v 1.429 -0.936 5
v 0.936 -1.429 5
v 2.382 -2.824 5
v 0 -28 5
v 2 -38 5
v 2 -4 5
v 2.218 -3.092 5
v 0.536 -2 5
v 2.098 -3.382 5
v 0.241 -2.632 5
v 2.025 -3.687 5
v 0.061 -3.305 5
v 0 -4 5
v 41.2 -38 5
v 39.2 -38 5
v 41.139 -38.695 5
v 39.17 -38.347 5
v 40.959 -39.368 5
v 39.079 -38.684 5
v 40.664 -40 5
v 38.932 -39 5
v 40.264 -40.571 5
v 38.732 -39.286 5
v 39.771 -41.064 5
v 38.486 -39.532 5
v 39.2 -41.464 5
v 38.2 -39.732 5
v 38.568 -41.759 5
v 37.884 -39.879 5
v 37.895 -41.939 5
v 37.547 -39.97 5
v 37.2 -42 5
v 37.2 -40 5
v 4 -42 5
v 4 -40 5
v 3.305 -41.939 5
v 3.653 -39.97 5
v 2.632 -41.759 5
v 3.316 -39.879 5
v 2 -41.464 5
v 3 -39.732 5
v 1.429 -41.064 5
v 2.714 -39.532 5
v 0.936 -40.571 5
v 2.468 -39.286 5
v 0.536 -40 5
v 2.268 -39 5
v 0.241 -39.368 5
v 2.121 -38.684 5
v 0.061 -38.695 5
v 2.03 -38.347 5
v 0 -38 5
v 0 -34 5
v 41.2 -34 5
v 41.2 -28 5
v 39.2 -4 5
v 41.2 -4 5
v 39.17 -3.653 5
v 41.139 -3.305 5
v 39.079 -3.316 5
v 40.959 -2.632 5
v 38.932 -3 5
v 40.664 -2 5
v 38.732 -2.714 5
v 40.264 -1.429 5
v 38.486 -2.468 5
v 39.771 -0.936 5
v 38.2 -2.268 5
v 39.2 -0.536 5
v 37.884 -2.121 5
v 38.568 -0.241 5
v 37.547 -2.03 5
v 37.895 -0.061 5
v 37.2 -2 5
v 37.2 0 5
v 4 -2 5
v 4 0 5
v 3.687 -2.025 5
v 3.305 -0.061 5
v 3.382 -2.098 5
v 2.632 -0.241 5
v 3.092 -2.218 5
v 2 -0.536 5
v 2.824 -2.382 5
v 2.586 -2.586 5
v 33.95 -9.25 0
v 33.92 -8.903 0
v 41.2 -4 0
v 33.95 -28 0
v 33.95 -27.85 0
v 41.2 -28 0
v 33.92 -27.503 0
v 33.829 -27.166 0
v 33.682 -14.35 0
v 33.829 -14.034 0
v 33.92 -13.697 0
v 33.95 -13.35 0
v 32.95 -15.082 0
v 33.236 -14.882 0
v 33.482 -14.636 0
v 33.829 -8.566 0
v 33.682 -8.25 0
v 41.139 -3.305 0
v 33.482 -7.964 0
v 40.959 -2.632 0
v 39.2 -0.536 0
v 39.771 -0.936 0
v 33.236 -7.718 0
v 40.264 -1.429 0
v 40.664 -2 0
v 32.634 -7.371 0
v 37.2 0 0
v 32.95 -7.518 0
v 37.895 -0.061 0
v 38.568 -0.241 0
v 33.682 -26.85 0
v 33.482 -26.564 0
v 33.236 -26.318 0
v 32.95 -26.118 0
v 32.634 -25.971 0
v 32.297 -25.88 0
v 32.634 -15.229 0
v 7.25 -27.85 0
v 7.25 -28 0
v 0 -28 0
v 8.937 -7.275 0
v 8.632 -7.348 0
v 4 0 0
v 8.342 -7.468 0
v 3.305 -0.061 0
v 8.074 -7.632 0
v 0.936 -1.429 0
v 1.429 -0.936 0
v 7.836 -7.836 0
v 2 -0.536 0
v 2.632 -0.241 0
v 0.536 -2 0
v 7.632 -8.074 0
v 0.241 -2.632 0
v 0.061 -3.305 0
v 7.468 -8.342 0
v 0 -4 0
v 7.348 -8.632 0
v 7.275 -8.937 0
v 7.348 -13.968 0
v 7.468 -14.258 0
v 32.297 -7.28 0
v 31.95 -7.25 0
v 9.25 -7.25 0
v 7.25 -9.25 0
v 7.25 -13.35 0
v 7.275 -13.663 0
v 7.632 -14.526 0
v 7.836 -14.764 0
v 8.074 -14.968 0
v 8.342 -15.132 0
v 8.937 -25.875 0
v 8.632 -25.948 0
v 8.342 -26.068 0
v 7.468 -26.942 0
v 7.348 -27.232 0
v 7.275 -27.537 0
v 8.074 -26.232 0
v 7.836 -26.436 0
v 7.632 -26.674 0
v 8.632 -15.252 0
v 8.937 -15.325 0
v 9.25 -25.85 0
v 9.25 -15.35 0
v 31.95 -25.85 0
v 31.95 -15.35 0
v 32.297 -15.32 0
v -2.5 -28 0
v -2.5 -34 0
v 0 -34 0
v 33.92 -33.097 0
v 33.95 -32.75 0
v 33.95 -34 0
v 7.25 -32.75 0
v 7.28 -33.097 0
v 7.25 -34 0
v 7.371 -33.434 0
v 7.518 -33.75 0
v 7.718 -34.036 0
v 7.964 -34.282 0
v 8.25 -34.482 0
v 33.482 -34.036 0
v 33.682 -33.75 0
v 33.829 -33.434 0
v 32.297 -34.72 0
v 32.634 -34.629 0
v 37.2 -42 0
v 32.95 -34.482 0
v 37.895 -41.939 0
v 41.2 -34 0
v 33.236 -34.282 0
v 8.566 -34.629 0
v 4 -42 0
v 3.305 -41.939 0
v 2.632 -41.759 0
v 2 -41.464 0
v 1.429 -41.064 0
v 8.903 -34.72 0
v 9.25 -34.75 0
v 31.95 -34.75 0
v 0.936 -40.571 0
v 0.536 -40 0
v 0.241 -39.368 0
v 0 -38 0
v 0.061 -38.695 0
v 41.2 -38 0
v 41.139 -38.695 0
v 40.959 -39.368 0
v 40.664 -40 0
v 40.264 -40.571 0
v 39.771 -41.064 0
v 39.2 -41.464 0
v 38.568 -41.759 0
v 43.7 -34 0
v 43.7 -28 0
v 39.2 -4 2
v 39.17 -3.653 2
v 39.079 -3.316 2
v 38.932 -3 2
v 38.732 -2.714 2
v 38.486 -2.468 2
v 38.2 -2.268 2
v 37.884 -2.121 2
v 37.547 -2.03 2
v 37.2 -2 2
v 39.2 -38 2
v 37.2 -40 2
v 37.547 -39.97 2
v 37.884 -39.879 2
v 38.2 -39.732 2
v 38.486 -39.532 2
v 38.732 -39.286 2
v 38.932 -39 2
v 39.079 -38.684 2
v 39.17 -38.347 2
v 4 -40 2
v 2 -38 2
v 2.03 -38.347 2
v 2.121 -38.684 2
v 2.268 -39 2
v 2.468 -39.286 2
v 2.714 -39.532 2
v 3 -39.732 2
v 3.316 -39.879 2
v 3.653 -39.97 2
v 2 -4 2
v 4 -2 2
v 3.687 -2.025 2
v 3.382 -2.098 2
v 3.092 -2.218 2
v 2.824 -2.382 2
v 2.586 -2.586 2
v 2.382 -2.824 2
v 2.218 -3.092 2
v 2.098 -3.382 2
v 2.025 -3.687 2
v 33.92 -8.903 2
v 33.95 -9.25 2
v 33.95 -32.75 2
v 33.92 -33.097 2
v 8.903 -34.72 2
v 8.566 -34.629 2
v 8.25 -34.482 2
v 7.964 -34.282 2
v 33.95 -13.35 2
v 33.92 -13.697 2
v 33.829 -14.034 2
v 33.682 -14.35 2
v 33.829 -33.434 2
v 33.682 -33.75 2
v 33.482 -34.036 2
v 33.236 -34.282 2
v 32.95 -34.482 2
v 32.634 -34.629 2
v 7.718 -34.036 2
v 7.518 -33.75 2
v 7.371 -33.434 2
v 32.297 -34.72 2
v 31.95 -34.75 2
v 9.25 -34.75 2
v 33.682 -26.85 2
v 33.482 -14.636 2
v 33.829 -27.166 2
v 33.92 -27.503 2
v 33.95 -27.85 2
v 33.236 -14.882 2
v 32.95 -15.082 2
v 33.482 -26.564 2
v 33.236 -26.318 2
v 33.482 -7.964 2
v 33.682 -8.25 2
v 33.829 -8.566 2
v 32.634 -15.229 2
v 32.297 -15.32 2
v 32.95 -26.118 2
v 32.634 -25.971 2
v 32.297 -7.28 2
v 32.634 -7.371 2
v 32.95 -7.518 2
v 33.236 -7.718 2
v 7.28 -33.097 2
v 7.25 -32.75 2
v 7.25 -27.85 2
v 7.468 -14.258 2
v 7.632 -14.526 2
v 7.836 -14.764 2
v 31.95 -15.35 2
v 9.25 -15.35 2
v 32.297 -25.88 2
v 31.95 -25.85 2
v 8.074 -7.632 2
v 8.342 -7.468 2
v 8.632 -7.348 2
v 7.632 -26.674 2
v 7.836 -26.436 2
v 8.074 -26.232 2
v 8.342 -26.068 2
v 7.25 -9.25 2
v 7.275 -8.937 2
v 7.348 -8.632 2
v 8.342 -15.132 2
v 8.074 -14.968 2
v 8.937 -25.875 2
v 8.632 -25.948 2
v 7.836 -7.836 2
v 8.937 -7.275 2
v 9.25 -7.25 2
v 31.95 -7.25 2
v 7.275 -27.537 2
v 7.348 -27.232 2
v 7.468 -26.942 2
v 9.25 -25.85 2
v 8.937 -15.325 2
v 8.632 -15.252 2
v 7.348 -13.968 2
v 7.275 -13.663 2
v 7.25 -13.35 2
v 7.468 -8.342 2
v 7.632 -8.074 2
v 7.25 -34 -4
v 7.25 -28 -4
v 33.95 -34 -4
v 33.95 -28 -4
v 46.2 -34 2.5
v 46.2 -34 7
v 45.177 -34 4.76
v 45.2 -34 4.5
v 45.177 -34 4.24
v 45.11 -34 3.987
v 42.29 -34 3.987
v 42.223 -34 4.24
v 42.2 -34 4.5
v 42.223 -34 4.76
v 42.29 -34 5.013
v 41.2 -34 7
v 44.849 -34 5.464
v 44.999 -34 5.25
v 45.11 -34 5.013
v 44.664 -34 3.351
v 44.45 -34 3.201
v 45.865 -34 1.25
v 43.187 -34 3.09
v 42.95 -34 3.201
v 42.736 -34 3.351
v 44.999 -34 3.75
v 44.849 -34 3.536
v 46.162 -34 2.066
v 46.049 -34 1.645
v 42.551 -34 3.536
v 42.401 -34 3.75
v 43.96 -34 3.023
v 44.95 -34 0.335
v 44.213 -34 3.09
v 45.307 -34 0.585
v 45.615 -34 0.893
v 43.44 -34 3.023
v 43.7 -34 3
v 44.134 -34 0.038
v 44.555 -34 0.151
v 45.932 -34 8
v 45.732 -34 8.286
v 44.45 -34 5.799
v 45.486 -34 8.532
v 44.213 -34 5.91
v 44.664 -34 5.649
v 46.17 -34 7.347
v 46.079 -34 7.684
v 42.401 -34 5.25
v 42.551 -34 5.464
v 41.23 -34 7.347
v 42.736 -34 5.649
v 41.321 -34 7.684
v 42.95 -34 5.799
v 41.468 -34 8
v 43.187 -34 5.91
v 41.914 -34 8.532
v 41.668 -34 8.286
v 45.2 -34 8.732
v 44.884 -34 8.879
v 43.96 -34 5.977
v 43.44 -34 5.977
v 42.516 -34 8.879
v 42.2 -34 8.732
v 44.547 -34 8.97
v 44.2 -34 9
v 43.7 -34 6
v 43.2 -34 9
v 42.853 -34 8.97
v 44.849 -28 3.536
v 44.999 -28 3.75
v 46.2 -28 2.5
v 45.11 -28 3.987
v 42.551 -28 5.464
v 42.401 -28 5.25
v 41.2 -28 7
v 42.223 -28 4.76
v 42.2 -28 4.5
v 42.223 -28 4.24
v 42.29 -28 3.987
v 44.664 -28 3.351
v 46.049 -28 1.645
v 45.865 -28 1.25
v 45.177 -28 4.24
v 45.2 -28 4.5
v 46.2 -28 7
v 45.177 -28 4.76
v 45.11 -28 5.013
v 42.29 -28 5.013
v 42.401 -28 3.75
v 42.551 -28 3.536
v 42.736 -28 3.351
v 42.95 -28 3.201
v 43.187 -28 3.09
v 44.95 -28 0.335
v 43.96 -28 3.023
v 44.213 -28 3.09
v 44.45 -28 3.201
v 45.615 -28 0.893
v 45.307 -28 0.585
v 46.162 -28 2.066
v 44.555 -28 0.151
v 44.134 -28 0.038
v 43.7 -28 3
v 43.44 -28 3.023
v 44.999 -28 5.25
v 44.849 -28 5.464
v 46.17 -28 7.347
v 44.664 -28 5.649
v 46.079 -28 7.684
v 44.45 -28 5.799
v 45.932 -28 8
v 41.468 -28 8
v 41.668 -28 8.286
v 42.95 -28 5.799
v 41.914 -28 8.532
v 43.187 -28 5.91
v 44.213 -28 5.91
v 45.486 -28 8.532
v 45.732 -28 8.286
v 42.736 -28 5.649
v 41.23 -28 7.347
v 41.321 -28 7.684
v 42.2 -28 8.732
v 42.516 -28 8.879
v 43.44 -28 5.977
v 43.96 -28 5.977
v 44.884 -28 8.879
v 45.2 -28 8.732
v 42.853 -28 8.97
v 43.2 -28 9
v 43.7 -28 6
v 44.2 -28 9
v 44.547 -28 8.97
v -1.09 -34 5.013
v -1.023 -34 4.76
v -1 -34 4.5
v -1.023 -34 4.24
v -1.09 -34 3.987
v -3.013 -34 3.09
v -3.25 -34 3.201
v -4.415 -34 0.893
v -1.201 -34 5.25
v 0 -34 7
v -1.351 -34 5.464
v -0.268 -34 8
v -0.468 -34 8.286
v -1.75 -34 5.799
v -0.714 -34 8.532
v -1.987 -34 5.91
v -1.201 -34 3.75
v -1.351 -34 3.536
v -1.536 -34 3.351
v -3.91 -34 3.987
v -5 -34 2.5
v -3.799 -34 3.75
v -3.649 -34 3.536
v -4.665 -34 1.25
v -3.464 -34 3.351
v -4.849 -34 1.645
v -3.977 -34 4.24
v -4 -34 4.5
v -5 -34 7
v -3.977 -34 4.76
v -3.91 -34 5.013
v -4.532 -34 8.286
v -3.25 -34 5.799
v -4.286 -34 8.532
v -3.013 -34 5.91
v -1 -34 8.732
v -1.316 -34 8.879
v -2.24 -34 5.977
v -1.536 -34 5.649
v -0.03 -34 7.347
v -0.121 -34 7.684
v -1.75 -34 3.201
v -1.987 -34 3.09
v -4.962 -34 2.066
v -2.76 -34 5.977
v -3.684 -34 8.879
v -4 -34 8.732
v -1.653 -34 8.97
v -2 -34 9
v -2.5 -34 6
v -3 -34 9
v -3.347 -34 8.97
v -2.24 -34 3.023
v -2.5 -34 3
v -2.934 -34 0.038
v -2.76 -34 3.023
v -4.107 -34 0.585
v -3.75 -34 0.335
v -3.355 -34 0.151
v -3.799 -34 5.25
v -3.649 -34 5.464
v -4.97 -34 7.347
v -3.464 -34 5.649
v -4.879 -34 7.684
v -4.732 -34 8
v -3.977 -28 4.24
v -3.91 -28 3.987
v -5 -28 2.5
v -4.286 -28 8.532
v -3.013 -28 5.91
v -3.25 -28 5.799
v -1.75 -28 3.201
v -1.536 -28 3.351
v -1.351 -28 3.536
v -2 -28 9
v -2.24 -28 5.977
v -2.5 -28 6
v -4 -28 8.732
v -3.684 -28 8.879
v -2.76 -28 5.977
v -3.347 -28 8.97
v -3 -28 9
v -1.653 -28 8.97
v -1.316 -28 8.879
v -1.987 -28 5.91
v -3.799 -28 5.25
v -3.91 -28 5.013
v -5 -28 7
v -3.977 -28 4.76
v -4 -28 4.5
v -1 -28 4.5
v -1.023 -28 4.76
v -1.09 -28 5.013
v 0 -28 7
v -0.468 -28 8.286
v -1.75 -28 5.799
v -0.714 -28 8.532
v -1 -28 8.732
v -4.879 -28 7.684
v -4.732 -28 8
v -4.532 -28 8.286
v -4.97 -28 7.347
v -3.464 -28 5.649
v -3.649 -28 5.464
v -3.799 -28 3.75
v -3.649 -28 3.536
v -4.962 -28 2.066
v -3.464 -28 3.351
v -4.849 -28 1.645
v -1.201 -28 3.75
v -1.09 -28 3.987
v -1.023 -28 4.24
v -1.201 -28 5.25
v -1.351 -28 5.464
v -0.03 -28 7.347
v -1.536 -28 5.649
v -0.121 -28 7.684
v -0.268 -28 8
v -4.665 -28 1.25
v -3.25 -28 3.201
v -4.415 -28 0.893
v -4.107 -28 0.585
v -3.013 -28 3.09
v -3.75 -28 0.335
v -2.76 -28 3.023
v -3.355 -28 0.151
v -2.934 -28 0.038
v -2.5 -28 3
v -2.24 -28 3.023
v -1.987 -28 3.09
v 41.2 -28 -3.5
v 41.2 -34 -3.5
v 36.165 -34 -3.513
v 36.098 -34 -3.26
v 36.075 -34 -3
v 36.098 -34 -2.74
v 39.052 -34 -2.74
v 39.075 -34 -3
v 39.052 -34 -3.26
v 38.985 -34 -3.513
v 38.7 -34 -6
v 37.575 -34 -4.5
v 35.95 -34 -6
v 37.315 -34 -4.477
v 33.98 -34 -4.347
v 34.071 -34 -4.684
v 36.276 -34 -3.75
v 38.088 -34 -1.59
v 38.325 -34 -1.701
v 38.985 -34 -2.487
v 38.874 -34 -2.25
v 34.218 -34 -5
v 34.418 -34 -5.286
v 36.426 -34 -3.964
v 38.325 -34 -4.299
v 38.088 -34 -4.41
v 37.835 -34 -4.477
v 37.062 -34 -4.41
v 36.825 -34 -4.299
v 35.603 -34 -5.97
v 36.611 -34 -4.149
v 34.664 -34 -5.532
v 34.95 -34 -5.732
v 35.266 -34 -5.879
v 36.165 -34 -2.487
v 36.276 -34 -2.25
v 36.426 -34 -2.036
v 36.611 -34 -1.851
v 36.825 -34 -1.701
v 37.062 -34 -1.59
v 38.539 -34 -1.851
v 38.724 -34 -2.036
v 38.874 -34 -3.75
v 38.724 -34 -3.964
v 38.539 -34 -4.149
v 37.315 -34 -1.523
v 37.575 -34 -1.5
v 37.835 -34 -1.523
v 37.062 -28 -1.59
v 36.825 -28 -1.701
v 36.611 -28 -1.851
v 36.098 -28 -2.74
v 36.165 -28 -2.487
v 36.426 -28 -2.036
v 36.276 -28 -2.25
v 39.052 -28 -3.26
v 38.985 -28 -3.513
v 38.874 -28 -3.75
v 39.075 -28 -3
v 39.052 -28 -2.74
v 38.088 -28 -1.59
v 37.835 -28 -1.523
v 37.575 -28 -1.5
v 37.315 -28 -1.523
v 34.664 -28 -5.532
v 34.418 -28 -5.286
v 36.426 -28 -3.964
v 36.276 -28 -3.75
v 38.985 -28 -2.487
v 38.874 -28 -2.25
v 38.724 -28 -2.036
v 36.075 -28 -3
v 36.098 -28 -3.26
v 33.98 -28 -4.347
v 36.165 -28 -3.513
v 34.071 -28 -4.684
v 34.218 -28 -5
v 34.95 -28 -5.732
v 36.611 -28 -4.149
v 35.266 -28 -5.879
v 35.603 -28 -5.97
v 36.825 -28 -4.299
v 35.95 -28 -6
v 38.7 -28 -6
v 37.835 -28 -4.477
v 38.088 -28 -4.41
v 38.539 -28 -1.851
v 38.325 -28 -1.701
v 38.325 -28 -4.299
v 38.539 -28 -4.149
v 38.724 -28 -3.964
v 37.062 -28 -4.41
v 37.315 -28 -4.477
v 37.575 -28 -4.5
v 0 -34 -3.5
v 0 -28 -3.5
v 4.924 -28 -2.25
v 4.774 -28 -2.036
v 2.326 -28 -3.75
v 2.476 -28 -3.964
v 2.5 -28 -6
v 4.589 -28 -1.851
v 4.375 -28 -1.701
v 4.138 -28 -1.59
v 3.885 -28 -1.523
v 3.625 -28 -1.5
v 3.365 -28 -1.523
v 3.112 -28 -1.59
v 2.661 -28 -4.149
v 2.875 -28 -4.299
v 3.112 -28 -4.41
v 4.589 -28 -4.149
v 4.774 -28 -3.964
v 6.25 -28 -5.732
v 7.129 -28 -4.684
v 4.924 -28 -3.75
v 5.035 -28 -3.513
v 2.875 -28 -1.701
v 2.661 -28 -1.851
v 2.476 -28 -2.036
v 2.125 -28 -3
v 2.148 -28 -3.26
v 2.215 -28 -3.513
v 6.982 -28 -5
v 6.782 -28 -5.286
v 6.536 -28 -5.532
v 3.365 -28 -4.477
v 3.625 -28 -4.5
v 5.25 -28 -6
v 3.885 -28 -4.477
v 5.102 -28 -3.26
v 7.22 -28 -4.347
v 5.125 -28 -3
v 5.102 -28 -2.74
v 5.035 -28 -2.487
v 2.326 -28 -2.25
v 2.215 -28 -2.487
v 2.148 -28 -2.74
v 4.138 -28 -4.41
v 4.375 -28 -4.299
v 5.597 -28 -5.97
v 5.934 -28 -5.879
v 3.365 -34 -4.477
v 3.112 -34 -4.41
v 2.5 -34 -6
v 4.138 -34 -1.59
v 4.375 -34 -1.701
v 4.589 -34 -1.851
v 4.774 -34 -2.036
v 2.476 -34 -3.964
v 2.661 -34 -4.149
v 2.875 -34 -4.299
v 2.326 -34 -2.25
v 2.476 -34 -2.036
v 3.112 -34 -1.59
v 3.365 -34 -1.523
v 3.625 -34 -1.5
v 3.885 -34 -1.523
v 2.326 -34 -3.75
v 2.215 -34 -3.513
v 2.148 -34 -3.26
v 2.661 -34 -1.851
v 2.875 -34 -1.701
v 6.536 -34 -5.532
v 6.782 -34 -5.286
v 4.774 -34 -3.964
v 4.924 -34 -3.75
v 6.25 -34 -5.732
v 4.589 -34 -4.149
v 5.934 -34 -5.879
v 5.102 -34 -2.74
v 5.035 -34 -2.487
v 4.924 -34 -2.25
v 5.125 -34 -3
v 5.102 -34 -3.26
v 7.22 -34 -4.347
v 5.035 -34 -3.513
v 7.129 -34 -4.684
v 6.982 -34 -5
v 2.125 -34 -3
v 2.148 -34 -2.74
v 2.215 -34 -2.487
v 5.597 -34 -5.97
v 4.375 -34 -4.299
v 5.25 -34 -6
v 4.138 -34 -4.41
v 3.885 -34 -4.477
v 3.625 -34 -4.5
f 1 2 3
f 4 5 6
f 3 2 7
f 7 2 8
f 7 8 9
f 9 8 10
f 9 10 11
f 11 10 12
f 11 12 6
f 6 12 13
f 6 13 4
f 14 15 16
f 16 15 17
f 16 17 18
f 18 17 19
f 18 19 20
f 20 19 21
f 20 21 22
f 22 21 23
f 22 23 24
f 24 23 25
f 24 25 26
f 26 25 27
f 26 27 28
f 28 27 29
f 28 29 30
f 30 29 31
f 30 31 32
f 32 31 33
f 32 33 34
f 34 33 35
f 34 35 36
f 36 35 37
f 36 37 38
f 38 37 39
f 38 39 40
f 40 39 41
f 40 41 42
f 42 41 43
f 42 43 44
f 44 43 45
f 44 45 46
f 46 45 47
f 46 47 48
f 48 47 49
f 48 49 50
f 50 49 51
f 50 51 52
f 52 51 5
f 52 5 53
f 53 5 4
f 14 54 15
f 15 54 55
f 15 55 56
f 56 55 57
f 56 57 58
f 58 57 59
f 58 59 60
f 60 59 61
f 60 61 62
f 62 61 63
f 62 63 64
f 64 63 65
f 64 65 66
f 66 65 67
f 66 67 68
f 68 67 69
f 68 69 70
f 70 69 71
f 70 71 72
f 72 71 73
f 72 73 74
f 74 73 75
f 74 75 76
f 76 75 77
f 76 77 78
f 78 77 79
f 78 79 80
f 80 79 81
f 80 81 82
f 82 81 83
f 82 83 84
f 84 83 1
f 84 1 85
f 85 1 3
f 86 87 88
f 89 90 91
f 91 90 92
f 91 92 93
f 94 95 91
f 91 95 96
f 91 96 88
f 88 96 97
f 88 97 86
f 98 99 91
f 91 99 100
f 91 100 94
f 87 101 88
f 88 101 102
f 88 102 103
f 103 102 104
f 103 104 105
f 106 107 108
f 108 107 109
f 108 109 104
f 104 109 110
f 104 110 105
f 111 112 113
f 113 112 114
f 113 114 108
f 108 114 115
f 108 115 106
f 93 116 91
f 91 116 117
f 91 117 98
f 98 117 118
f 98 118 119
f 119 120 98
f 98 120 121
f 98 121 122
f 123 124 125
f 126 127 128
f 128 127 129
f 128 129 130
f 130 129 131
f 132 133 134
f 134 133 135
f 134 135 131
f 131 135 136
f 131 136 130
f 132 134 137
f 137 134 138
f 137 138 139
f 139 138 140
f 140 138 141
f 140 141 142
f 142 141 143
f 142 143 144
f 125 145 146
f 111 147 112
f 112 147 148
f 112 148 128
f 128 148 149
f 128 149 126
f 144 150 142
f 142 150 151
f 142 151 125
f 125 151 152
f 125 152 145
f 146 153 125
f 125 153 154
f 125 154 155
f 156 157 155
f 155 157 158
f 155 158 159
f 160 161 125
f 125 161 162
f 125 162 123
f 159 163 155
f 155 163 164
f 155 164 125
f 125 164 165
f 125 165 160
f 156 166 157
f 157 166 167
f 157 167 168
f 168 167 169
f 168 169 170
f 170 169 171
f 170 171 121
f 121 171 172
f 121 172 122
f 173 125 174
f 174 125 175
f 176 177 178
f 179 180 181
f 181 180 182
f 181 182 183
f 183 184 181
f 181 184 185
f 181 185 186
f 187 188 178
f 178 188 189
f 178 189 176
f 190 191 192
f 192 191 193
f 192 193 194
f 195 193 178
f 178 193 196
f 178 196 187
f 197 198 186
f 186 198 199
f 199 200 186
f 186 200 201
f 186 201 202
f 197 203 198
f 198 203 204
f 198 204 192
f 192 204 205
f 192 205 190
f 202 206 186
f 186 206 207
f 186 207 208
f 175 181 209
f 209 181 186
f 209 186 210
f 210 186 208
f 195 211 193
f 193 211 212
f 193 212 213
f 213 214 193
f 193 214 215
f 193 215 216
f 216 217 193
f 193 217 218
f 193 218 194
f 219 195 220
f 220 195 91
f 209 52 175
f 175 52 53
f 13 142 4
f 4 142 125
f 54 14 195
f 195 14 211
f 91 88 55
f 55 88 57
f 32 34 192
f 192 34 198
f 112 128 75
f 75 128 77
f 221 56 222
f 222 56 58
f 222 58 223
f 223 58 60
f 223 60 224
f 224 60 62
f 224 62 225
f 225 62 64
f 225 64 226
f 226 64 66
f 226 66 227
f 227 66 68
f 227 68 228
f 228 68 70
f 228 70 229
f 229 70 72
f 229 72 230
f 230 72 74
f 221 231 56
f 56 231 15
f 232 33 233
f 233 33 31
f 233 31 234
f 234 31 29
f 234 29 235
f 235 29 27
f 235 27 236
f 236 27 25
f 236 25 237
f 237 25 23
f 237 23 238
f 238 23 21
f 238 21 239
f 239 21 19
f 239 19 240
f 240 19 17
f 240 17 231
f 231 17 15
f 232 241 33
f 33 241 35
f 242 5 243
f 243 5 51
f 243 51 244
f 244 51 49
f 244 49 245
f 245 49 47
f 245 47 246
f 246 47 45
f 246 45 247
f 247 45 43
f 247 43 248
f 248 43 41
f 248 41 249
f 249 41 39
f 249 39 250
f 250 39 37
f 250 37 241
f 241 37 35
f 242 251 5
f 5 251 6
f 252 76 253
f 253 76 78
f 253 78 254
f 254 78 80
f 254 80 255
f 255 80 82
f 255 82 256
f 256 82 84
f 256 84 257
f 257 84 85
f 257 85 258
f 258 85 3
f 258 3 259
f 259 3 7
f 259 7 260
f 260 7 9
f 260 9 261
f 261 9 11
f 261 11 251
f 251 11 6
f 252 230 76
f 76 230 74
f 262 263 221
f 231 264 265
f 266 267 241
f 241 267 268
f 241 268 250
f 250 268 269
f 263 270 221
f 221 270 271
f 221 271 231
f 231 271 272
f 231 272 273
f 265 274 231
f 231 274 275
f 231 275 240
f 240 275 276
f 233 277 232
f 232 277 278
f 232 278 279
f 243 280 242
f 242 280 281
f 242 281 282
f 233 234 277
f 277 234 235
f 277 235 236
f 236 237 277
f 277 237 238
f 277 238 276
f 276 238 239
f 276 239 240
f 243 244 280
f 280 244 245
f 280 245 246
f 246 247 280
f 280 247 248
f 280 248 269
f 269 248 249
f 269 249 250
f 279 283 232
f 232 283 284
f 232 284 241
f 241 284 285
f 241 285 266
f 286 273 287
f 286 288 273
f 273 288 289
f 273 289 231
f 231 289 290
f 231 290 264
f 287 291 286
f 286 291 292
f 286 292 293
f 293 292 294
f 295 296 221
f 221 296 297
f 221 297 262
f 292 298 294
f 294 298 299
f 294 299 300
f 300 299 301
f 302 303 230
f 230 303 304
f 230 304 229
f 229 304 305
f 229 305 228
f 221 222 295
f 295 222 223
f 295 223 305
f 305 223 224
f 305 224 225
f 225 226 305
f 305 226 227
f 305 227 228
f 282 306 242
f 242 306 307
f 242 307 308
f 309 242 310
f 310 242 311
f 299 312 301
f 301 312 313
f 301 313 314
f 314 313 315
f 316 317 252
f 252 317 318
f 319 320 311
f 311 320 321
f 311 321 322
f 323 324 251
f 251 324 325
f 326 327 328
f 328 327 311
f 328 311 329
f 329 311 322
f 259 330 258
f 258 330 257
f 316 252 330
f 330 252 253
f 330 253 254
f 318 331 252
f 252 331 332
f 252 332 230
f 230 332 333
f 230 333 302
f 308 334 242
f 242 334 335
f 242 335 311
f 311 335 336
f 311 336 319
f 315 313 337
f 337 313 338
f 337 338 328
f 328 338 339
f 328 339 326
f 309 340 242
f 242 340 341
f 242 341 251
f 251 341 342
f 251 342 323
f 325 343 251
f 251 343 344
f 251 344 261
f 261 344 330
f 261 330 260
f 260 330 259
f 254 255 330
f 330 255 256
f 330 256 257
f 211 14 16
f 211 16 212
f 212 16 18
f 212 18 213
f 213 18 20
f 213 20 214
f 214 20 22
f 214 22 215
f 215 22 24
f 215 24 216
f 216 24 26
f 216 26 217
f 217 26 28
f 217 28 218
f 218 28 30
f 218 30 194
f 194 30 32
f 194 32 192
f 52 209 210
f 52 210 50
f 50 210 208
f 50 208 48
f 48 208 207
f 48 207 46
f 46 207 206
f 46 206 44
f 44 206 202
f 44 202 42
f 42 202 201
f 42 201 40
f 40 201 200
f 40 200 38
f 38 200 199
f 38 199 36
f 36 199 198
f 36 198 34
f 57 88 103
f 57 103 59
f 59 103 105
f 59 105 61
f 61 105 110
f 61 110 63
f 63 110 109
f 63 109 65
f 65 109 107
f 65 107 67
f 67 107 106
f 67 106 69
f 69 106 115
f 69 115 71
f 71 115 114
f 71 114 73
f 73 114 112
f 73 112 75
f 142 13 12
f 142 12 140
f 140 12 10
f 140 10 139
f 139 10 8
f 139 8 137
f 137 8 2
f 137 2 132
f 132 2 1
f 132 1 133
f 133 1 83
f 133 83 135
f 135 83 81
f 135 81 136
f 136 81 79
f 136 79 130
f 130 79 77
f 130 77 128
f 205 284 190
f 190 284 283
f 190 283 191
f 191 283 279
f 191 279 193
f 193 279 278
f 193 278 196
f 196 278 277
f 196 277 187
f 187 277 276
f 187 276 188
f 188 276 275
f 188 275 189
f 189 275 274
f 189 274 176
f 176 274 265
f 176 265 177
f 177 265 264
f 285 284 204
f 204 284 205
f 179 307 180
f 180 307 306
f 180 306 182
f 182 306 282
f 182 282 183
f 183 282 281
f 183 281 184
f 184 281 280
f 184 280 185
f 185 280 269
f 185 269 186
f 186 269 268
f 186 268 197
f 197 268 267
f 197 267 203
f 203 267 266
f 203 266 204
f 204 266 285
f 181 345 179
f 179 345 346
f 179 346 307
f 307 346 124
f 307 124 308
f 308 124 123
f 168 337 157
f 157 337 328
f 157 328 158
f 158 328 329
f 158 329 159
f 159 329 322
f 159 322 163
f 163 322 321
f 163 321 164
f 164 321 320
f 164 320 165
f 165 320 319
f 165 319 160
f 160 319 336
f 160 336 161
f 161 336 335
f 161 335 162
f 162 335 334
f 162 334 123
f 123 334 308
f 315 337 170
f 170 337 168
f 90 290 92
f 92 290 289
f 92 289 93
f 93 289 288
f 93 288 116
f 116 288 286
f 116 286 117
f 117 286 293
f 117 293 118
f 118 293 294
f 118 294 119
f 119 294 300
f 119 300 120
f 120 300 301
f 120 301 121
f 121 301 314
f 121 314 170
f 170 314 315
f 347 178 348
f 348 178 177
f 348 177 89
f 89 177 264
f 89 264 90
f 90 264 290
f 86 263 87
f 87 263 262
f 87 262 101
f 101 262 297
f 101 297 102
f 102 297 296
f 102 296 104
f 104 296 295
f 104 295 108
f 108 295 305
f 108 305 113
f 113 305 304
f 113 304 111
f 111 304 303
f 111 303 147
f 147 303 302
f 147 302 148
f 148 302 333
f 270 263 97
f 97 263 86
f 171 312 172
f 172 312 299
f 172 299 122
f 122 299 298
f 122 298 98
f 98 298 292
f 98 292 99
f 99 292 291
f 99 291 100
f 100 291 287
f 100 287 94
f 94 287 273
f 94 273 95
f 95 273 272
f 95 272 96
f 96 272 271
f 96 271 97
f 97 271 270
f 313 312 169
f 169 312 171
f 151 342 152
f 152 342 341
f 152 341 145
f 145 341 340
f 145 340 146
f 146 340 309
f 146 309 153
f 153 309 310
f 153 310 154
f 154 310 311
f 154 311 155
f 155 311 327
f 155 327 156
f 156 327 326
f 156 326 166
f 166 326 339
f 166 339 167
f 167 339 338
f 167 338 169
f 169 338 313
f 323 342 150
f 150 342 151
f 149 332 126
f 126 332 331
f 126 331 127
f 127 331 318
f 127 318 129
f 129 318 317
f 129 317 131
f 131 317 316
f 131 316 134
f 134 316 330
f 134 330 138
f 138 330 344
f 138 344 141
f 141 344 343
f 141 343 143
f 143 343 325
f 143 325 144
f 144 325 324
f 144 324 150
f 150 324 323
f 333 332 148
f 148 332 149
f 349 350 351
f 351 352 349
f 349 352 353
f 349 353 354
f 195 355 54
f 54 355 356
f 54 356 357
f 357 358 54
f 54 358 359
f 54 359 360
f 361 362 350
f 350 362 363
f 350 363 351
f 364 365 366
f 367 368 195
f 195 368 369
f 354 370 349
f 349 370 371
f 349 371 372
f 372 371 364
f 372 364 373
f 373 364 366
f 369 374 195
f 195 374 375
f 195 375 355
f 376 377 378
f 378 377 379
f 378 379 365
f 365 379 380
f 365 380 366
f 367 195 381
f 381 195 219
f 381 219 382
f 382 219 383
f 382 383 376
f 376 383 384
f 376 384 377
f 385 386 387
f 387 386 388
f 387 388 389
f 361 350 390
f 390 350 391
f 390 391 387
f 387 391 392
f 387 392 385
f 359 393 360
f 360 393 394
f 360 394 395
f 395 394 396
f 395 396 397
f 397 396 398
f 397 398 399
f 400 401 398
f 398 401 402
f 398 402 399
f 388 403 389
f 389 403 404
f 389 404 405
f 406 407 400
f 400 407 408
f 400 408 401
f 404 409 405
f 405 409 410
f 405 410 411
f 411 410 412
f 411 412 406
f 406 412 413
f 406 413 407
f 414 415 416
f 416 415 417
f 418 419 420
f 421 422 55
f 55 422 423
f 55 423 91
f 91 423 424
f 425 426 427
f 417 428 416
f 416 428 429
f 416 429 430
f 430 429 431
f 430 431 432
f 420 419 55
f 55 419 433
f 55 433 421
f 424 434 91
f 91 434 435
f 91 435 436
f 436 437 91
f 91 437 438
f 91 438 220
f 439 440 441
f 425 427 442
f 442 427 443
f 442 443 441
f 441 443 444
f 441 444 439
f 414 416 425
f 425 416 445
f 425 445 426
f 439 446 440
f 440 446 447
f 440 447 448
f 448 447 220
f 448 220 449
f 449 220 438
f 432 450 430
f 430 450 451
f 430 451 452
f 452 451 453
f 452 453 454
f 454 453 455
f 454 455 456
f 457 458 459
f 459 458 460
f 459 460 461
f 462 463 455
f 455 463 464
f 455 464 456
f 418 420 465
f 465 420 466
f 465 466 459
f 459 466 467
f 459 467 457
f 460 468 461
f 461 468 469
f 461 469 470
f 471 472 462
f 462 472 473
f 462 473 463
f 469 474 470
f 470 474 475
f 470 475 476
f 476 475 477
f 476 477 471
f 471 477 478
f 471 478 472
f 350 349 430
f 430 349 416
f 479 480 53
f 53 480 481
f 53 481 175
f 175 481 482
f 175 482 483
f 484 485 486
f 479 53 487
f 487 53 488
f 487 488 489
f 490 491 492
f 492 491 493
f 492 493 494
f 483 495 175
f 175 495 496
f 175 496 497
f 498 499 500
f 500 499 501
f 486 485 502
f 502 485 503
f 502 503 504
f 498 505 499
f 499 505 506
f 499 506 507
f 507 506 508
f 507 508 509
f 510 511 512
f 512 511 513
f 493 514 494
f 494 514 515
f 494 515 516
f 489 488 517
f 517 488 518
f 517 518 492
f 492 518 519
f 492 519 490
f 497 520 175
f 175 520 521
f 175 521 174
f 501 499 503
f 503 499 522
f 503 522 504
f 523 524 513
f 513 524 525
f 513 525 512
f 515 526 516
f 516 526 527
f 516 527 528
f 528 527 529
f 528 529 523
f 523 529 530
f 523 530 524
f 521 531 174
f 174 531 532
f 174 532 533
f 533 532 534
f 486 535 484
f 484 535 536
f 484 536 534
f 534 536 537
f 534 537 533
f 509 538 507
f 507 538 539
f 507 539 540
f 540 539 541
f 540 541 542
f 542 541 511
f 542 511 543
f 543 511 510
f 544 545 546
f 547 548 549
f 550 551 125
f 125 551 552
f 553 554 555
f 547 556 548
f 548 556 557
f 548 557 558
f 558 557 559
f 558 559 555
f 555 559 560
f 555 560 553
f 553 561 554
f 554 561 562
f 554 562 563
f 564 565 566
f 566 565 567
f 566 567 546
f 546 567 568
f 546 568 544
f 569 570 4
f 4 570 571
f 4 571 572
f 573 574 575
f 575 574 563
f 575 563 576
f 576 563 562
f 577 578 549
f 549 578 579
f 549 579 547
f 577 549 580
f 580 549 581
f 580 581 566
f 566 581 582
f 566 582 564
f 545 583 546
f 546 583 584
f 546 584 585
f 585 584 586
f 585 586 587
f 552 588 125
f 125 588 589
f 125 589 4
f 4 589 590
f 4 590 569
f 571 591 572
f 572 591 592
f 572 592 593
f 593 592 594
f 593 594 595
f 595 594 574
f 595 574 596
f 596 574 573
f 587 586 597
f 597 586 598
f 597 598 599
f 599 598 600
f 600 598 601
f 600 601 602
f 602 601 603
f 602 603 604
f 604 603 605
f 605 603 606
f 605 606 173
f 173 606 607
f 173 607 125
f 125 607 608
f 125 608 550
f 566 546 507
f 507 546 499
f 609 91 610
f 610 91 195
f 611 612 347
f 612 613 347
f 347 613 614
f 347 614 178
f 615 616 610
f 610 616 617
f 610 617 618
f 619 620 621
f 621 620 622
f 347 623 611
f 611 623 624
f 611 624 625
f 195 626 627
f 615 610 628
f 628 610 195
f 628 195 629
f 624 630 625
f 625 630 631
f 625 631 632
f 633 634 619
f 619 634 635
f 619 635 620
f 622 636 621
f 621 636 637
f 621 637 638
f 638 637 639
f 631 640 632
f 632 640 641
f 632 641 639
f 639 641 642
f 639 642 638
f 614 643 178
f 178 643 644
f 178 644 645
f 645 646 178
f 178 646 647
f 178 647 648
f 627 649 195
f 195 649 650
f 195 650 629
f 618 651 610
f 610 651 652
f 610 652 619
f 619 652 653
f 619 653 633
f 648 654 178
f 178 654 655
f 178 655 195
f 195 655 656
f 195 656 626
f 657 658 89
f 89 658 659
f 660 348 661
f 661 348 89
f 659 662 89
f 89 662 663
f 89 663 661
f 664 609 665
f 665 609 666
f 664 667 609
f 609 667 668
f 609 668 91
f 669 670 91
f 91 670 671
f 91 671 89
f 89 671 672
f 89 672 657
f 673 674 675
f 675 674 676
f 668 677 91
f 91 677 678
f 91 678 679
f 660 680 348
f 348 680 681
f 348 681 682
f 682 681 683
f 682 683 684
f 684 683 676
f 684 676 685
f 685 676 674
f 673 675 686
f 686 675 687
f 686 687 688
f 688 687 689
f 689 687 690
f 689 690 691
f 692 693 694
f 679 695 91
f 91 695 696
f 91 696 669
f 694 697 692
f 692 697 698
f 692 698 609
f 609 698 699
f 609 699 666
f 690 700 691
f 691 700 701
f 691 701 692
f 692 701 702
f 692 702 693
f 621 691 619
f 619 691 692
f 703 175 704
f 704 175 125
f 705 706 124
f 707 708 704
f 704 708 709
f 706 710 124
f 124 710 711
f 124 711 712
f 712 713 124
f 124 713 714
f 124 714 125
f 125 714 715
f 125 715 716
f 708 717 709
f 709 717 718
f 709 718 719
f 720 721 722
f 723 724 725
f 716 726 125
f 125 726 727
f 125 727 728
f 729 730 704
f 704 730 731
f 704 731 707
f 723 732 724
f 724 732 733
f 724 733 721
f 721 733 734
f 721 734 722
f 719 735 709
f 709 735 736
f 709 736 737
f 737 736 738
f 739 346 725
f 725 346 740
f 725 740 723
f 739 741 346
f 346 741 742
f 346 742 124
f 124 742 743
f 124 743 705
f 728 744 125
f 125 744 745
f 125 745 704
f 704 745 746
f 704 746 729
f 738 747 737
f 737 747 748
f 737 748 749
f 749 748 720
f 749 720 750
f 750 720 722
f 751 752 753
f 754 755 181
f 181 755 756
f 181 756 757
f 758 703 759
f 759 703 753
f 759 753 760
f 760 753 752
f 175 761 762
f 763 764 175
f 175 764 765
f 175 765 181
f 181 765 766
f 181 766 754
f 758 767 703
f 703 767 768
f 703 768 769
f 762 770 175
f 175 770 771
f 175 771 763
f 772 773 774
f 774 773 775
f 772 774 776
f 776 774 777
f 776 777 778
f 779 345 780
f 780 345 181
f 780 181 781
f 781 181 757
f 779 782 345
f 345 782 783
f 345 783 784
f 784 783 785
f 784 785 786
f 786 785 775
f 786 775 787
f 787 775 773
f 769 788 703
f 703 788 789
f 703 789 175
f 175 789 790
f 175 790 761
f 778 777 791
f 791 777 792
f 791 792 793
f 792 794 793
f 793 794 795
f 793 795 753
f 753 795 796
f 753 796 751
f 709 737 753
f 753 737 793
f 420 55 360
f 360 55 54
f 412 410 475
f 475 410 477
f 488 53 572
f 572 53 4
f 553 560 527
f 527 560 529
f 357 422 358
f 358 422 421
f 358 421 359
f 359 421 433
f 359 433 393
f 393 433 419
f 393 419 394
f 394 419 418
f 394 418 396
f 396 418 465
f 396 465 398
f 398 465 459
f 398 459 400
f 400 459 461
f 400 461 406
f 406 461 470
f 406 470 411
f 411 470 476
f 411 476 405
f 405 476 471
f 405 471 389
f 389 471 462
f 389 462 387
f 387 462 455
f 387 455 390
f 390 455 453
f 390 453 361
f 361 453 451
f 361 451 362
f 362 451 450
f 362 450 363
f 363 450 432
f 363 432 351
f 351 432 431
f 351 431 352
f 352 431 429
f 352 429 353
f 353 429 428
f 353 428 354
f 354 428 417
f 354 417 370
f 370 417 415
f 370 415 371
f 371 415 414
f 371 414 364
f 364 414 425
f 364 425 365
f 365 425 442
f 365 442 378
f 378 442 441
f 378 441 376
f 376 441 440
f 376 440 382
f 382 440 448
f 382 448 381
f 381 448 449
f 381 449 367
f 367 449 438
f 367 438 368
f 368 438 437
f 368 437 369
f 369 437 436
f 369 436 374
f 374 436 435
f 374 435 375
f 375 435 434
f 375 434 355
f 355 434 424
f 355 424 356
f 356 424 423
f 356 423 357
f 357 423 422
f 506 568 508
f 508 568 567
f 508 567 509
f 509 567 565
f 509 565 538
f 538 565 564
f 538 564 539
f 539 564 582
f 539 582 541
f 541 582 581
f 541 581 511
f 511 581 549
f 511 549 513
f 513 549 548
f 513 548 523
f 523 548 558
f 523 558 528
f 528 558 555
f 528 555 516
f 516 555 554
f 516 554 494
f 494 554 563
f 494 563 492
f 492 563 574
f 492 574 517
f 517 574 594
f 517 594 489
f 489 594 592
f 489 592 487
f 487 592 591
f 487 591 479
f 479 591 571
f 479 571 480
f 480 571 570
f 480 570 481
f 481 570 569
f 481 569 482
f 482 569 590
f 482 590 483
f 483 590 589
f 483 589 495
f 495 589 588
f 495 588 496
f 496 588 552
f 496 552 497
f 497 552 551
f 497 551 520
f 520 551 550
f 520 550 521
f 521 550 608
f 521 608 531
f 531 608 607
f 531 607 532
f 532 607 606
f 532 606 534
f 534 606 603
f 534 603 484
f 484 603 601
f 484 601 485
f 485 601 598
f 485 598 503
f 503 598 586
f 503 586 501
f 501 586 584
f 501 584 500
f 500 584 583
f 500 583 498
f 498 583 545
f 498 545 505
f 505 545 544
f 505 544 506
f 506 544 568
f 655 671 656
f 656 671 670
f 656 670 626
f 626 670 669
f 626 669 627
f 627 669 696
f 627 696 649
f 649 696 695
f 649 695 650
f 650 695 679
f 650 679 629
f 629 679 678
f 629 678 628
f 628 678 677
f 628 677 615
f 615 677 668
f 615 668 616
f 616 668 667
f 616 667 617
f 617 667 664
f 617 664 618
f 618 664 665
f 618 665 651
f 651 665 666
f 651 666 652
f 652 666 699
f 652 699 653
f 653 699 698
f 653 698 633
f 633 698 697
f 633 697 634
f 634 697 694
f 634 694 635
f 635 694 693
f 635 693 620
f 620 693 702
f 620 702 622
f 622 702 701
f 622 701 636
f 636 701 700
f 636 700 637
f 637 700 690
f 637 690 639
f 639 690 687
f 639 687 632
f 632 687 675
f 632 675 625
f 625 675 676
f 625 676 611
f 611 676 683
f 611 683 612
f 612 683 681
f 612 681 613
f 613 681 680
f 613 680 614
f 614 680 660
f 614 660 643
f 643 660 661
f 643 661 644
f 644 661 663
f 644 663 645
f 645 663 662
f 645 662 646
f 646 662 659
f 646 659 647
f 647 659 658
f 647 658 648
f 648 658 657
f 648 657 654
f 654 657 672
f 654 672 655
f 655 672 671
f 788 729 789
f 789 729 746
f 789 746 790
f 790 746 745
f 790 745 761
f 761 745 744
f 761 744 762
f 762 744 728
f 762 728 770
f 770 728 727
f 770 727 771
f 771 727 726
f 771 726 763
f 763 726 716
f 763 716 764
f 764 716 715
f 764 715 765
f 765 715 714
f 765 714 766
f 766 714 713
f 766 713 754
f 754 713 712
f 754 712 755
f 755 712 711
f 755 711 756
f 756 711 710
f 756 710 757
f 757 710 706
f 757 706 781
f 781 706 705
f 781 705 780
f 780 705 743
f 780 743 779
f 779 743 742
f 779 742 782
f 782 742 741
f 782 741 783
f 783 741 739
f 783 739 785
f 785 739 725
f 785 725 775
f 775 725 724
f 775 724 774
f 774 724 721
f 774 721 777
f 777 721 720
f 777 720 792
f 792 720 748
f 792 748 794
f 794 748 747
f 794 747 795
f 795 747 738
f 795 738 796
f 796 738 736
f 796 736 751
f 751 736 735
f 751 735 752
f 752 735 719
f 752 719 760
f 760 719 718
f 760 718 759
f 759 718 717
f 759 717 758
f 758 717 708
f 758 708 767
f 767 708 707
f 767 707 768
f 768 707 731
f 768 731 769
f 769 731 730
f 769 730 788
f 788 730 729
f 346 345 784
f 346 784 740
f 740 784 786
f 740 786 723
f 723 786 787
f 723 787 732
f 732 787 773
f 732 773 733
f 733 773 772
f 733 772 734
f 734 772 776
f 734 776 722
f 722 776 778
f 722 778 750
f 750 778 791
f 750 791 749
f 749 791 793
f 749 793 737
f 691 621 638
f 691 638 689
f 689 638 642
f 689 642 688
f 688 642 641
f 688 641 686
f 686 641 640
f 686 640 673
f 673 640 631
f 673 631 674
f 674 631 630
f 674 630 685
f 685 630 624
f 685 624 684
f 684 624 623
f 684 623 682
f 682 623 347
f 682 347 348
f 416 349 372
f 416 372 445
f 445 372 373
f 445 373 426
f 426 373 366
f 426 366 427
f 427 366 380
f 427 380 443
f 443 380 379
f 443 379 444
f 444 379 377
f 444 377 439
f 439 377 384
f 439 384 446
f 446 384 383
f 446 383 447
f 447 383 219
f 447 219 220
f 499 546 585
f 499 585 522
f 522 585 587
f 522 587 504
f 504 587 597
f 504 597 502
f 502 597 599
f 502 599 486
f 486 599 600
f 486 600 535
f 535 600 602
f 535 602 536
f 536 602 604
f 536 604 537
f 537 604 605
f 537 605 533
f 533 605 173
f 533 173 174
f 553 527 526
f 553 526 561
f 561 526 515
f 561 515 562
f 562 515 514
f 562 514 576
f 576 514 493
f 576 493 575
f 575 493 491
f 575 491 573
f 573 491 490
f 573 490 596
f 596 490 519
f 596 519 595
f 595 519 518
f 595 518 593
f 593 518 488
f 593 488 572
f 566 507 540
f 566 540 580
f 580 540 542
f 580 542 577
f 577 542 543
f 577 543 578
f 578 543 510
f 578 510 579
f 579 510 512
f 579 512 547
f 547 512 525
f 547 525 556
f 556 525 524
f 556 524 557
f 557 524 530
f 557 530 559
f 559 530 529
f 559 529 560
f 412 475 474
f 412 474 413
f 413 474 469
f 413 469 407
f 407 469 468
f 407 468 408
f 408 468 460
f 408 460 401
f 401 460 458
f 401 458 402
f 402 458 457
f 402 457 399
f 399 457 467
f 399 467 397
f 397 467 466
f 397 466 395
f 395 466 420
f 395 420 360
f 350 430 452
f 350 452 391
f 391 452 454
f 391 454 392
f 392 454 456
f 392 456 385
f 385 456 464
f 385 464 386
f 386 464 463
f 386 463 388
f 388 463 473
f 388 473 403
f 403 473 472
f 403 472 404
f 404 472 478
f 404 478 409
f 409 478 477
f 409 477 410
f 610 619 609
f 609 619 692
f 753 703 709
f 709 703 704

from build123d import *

# Parameters (mm, degrees)
SKETCH1_W           = 41.2
SKETCH1_H           = 42
BOSS_EXTRUDE1_DEPTH = 5
CUT_EXTRUDE1_DEPTH  = 3
FILLET1_R           = 4
CUT_EXTRUDE2_DEPTH  = 2
SKETCH6_W           = 5
SKETCH6_H           = 6
BOSS_EXTRUDE2_DEPTH = 5
SKETCH7_W           = 5
SKETCH7_H           = 6
BOSS_EXTRUDE3_DEPTH = 5
SKETCH8_W           = 7.25
SKETCH8_H           = 6
BOSS_EXTRUDE4_DEPTH = 6
SKETCH9_W           = 7.25
SKETCH9_H           = 6
BOSS_EXTRUDE5_DEPTH = 6
SKETCH13_W          = 5
SKETCH13_H          = 6
BOSS_EXTRUDE6_DEPTH = 4
SKETCH10_R          = 1.5
CUT_EXTRUDE3_DEPTH  = 6
SKETCH12_R          = 1.5
CUT_EXTRUDE4_DEPTH  = 6
FILLET3_R           = 2
FILLET4_R           = 2.5
FILLET6_R           = 2
CUT_EXTRUDE6_START  = -6
CUT_EXTRUDE6_DEPTH  = 6
CUT_EXTRUDE7_START  = -6
CUT_EXTRUDE7_DEPTH  = 6


# Read off the part's stored shape, not the designer's step: Cut-Extrude6, Cut-Extrude7
with BuildPart() as part:
    # Sketch1 → Boss-Extrude1 (new body)
    with BuildSketch(Plane.XY):
        with Locations((20.6, -21)):
            Rectangle(SKETCH1_W, SKETCH1_H)
    extrude(amount=BOSS_EXTRUDE1_DEPTH)

    # Sketch2 → Cut-Extrude1 (cut)
    with BuildSketch(Plane.XY.offset(5)):
        with BuildLine():
            Line((4, -2), (37.2, -2))
            ThreePointArc((37.2, -2), (38.614213562, -2.585786438), (39.2, -4))
            Line((39.2, -4), (39.2, -38))
            ThreePointArc((39.2, -38), (38.614213562, -39.414213562), (37.2, -40))
            Line((37.2, -40), (4, -40))
            ThreePointArc((4, -40), (2.585786438, -39.414213562), (2, -38))
            Line((2, -38), (2, -4))
            ThreePointArc((2, -4), (2.585786438, -2.585786438), (4, -2))
        make_face()
    extrude(amount=-CUT_EXTRUDE1_DEPTH, mode=Mode.SUBTRACT)

    # Fillet1
    fillet1_edges = [part.edges().sort_by_distance(p)[0] for p in [
        (0, 0, 2.5),
        (41.2, 0, 2.5),
        (41.2, -42, 2.5),
        (0, -42, 2.5),
    ]]
    fillet(fillet1_edges, radius=FILLET1_R)

    # Sketch3 → Cut-Extrude2 (cut)
    with BuildSketch(Plane.XY.offset(2)):
        with BuildLine():
            Line((9.25, -7.25), (31.95, -7.25))
            ThreePointArc((31.95, -7.25), (33.364213562, -7.835786438), (33.95, -9.25))
            Line((33.95, -9.25), (33.95, -13.35))
            ThreePointArc((33.95, -13.35), (33.364213562, -14.764213562), (31.95, -15.35))
            Line((31.95, -15.35), (9.25, -15.35))
            ThreePointArc((9.25, -15.35), (7.835786438, -14.764213562), (7.25, -13.35))
            Line((7.25, -13.35), (7.25, -9.25))
            ThreePointArc((7.25, -9.25), (7.835786438, -7.835786438), (9.25, -7.25))
        make_face()
        with BuildLine():
            Line((9.25, -25.85), (31.95, -25.85))
            ThreePointArc((31.95, -25.85), (33.364213562, -26.435786438), (33.95, -27.85))
            Line((33.95, -27.85), (33.95, -32.75))
            ThreePointArc((33.95, -32.75), (33.364213562, -34.164213562), (31.95, -34.75))
            Line((31.95, -34.75), (9.25, -34.75))
            ThreePointArc((9.25, -34.75), (7.835786438, -34.164213562), (7.25, -32.75))
            Line((7.25, -32.75), (7.25, -27.85))
            ThreePointArc((7.25, -27.85), (7.835786438, -26.435786438), (9.25, -25.85))
        make_face()
    extrude(amount=-CUT_EXTRUDE2_DEPTH, mode=Mode.SUBTRACT)

    # Sketch6 → Boss-Extrude2 (add)
    with BuildSketch(Plane(origin=(41.2, 0, 0), x_dir=(0, 0, -1), z_dir=(1, 0, 0))):
        with Locations((-2.5, -31)):
            Rectangle(SKETCH6_W, SKETCH6_H)
    extrude(amount=BOSS_EXTRUDE2_DEPTH)

    # Sketch7 → Boss-Extrude3 (add)
    with BuildSketch(Plane.ZY):
        with Locations((2.5, -31)):
            Rectangle(SKETCH7_W, SKETCH7_H)
    extrude(amount=BOSS_EXTRUDE3_DEPTH)

    # Sketch8 → Boss-Extrude4 (add)
    with BuildSketch(Plane(origin=(0, 0, 0), x_dir=(-1, 0, 0), z_dir=(0, 0, -1))):
        with Locations((-37.575, -31)):
            Rectangle(SKETCH8_W, SKETCH8_H)
    extrude(amount=BOSS_EXTRUDE4_DEPTH)

    # Sketch9 → Boss-Extrude5 (add)
    with BuildSketch(Plane(origin=(0, 0, 0), x_dir=(-1, 0, 0), z_dir=(0, 0, -1))):
        with Locations((-3.625, -31)):
            Rectangle(SKETCH9_W, SKETCH9_H)
    extrude(amount=BOSS_EXTRUDE5_DEPTH)

    # Sketch13 → Boss-Extrude6 (add)
    with BuildSketch(Plane.XY.offset(5)):
        with Locations((43.7, -31)):
            Rectangle(SKETCH13_W, SKETCH13_H)
        with Locations((-2.5, -31)):
            Rectangle(SKETCH13_W, SKETCH13_H)
    extrude(amount=BOSS_EXTRUDE6_DEPTH)

    # Sketch10 → Cut-Extrude3 (cut)
    with BuildSketch(Plane(origin=(0, -28, 0), x_dir=(1, 0, 0), z_dir=(0, 1, 0))):
        with Locations(Location((43.7, -4.5, 0), (0, 0, 180))):
            Circle(SKETCH10_R)
    cut_extrude3 = extrude(amount=-CUT_EXTRUDE3_DEPTH, mode=Mode.SUBTRACT)

    # Mirror1: Cut-Extrude3 across plane
    add(cut_extrude3.mirror(Plane(origin=(20.6, 0, 0), x_dir=(0, 0, 1), z_dir=(1, 0, 0))), mode=Mode.SUBTRACT)

    # Sketch12 → Cut-Extrude4 (cut)
    with BuildSketch(Plane(origin=(0, -28, 0), x_dir=(1, 0, 0), z_dir=(0, 1, 0))):
        with Locations(Location((37.575, 3, 0), (0, 0, 270))):
            Circle(SKETCH12_R)
    cut_extrude4 = extrude(amount=-CUT_EXTRUDE4_DEPTH, mode=Mode.SUBTRACT)

    # Mirror2: Cut-Extrude4 across plane
    add(cut_extrude4.mirror(Plane(origin=(20.6, 0, 0), x_dir=(0, 0, 1), z_dir=(1, 0, 0))), mode=Mode.SUBTRACT)

    # Fillet3
    fillet3_edges = [part.edges().sort_by_distance(p)[0] for p in [
        (33.95, -31, -6),
        (7.25, -31, -6),
    ]]
    fillet(fillet3_edges, radius=FILLET3_R)

    # Fillet4
    fillet4_edges = [part.edges().sort_by_distance(p)[0] for p in [
        (46.2, -31, 0),
        (-5, -31, 0),
    ]]
    fillet(fillet4_edges, radius=FILLET4_R)

    # Fillet6
    fillet6_edges = [part.edges().sort_by_distance(p)[0] for p in [
        (46.2, -31, 9),
        (41.2, -31, 9),
        (0, -31, 9),
        (-5, -31, 9),
    ]]
    fillet(fillet6_edges, radius=FILLET6_R)

    # Cut-Extrude6 outline → Cut-Extrude6 (cut)
    with BuildSketch(Plane(origin=(0, -28, 0), x_dir=(1, 0, 0), z_dir=(0, 1, 0)).offset(CUT_EXTRUDE6_START)):
        Polygon((41.2, 6), (38.7, 6), (41.2, 3.5), align=None)
    extrude(amount=CUT_EXTRUDE6_DEPTH, mode=Mode.SUBTRACT)

    # Cut-Extrude7 outline → Cut-Extrude7 (cut)
    with BuildSketch(Plane(origin=(0, -28, 0), x_dir=(1, 0, 0), z_dir=(0, 1, 0)).offset(CUT_EXTRUDE7_START)):
        Polygon((0, 6), (0, 3.5), (2.5, 6), align=None)
    extrude(amount=CUT_EXTRUDE7_DEPTH, mode=Mode.SUBTRACT)


solid = part.part
